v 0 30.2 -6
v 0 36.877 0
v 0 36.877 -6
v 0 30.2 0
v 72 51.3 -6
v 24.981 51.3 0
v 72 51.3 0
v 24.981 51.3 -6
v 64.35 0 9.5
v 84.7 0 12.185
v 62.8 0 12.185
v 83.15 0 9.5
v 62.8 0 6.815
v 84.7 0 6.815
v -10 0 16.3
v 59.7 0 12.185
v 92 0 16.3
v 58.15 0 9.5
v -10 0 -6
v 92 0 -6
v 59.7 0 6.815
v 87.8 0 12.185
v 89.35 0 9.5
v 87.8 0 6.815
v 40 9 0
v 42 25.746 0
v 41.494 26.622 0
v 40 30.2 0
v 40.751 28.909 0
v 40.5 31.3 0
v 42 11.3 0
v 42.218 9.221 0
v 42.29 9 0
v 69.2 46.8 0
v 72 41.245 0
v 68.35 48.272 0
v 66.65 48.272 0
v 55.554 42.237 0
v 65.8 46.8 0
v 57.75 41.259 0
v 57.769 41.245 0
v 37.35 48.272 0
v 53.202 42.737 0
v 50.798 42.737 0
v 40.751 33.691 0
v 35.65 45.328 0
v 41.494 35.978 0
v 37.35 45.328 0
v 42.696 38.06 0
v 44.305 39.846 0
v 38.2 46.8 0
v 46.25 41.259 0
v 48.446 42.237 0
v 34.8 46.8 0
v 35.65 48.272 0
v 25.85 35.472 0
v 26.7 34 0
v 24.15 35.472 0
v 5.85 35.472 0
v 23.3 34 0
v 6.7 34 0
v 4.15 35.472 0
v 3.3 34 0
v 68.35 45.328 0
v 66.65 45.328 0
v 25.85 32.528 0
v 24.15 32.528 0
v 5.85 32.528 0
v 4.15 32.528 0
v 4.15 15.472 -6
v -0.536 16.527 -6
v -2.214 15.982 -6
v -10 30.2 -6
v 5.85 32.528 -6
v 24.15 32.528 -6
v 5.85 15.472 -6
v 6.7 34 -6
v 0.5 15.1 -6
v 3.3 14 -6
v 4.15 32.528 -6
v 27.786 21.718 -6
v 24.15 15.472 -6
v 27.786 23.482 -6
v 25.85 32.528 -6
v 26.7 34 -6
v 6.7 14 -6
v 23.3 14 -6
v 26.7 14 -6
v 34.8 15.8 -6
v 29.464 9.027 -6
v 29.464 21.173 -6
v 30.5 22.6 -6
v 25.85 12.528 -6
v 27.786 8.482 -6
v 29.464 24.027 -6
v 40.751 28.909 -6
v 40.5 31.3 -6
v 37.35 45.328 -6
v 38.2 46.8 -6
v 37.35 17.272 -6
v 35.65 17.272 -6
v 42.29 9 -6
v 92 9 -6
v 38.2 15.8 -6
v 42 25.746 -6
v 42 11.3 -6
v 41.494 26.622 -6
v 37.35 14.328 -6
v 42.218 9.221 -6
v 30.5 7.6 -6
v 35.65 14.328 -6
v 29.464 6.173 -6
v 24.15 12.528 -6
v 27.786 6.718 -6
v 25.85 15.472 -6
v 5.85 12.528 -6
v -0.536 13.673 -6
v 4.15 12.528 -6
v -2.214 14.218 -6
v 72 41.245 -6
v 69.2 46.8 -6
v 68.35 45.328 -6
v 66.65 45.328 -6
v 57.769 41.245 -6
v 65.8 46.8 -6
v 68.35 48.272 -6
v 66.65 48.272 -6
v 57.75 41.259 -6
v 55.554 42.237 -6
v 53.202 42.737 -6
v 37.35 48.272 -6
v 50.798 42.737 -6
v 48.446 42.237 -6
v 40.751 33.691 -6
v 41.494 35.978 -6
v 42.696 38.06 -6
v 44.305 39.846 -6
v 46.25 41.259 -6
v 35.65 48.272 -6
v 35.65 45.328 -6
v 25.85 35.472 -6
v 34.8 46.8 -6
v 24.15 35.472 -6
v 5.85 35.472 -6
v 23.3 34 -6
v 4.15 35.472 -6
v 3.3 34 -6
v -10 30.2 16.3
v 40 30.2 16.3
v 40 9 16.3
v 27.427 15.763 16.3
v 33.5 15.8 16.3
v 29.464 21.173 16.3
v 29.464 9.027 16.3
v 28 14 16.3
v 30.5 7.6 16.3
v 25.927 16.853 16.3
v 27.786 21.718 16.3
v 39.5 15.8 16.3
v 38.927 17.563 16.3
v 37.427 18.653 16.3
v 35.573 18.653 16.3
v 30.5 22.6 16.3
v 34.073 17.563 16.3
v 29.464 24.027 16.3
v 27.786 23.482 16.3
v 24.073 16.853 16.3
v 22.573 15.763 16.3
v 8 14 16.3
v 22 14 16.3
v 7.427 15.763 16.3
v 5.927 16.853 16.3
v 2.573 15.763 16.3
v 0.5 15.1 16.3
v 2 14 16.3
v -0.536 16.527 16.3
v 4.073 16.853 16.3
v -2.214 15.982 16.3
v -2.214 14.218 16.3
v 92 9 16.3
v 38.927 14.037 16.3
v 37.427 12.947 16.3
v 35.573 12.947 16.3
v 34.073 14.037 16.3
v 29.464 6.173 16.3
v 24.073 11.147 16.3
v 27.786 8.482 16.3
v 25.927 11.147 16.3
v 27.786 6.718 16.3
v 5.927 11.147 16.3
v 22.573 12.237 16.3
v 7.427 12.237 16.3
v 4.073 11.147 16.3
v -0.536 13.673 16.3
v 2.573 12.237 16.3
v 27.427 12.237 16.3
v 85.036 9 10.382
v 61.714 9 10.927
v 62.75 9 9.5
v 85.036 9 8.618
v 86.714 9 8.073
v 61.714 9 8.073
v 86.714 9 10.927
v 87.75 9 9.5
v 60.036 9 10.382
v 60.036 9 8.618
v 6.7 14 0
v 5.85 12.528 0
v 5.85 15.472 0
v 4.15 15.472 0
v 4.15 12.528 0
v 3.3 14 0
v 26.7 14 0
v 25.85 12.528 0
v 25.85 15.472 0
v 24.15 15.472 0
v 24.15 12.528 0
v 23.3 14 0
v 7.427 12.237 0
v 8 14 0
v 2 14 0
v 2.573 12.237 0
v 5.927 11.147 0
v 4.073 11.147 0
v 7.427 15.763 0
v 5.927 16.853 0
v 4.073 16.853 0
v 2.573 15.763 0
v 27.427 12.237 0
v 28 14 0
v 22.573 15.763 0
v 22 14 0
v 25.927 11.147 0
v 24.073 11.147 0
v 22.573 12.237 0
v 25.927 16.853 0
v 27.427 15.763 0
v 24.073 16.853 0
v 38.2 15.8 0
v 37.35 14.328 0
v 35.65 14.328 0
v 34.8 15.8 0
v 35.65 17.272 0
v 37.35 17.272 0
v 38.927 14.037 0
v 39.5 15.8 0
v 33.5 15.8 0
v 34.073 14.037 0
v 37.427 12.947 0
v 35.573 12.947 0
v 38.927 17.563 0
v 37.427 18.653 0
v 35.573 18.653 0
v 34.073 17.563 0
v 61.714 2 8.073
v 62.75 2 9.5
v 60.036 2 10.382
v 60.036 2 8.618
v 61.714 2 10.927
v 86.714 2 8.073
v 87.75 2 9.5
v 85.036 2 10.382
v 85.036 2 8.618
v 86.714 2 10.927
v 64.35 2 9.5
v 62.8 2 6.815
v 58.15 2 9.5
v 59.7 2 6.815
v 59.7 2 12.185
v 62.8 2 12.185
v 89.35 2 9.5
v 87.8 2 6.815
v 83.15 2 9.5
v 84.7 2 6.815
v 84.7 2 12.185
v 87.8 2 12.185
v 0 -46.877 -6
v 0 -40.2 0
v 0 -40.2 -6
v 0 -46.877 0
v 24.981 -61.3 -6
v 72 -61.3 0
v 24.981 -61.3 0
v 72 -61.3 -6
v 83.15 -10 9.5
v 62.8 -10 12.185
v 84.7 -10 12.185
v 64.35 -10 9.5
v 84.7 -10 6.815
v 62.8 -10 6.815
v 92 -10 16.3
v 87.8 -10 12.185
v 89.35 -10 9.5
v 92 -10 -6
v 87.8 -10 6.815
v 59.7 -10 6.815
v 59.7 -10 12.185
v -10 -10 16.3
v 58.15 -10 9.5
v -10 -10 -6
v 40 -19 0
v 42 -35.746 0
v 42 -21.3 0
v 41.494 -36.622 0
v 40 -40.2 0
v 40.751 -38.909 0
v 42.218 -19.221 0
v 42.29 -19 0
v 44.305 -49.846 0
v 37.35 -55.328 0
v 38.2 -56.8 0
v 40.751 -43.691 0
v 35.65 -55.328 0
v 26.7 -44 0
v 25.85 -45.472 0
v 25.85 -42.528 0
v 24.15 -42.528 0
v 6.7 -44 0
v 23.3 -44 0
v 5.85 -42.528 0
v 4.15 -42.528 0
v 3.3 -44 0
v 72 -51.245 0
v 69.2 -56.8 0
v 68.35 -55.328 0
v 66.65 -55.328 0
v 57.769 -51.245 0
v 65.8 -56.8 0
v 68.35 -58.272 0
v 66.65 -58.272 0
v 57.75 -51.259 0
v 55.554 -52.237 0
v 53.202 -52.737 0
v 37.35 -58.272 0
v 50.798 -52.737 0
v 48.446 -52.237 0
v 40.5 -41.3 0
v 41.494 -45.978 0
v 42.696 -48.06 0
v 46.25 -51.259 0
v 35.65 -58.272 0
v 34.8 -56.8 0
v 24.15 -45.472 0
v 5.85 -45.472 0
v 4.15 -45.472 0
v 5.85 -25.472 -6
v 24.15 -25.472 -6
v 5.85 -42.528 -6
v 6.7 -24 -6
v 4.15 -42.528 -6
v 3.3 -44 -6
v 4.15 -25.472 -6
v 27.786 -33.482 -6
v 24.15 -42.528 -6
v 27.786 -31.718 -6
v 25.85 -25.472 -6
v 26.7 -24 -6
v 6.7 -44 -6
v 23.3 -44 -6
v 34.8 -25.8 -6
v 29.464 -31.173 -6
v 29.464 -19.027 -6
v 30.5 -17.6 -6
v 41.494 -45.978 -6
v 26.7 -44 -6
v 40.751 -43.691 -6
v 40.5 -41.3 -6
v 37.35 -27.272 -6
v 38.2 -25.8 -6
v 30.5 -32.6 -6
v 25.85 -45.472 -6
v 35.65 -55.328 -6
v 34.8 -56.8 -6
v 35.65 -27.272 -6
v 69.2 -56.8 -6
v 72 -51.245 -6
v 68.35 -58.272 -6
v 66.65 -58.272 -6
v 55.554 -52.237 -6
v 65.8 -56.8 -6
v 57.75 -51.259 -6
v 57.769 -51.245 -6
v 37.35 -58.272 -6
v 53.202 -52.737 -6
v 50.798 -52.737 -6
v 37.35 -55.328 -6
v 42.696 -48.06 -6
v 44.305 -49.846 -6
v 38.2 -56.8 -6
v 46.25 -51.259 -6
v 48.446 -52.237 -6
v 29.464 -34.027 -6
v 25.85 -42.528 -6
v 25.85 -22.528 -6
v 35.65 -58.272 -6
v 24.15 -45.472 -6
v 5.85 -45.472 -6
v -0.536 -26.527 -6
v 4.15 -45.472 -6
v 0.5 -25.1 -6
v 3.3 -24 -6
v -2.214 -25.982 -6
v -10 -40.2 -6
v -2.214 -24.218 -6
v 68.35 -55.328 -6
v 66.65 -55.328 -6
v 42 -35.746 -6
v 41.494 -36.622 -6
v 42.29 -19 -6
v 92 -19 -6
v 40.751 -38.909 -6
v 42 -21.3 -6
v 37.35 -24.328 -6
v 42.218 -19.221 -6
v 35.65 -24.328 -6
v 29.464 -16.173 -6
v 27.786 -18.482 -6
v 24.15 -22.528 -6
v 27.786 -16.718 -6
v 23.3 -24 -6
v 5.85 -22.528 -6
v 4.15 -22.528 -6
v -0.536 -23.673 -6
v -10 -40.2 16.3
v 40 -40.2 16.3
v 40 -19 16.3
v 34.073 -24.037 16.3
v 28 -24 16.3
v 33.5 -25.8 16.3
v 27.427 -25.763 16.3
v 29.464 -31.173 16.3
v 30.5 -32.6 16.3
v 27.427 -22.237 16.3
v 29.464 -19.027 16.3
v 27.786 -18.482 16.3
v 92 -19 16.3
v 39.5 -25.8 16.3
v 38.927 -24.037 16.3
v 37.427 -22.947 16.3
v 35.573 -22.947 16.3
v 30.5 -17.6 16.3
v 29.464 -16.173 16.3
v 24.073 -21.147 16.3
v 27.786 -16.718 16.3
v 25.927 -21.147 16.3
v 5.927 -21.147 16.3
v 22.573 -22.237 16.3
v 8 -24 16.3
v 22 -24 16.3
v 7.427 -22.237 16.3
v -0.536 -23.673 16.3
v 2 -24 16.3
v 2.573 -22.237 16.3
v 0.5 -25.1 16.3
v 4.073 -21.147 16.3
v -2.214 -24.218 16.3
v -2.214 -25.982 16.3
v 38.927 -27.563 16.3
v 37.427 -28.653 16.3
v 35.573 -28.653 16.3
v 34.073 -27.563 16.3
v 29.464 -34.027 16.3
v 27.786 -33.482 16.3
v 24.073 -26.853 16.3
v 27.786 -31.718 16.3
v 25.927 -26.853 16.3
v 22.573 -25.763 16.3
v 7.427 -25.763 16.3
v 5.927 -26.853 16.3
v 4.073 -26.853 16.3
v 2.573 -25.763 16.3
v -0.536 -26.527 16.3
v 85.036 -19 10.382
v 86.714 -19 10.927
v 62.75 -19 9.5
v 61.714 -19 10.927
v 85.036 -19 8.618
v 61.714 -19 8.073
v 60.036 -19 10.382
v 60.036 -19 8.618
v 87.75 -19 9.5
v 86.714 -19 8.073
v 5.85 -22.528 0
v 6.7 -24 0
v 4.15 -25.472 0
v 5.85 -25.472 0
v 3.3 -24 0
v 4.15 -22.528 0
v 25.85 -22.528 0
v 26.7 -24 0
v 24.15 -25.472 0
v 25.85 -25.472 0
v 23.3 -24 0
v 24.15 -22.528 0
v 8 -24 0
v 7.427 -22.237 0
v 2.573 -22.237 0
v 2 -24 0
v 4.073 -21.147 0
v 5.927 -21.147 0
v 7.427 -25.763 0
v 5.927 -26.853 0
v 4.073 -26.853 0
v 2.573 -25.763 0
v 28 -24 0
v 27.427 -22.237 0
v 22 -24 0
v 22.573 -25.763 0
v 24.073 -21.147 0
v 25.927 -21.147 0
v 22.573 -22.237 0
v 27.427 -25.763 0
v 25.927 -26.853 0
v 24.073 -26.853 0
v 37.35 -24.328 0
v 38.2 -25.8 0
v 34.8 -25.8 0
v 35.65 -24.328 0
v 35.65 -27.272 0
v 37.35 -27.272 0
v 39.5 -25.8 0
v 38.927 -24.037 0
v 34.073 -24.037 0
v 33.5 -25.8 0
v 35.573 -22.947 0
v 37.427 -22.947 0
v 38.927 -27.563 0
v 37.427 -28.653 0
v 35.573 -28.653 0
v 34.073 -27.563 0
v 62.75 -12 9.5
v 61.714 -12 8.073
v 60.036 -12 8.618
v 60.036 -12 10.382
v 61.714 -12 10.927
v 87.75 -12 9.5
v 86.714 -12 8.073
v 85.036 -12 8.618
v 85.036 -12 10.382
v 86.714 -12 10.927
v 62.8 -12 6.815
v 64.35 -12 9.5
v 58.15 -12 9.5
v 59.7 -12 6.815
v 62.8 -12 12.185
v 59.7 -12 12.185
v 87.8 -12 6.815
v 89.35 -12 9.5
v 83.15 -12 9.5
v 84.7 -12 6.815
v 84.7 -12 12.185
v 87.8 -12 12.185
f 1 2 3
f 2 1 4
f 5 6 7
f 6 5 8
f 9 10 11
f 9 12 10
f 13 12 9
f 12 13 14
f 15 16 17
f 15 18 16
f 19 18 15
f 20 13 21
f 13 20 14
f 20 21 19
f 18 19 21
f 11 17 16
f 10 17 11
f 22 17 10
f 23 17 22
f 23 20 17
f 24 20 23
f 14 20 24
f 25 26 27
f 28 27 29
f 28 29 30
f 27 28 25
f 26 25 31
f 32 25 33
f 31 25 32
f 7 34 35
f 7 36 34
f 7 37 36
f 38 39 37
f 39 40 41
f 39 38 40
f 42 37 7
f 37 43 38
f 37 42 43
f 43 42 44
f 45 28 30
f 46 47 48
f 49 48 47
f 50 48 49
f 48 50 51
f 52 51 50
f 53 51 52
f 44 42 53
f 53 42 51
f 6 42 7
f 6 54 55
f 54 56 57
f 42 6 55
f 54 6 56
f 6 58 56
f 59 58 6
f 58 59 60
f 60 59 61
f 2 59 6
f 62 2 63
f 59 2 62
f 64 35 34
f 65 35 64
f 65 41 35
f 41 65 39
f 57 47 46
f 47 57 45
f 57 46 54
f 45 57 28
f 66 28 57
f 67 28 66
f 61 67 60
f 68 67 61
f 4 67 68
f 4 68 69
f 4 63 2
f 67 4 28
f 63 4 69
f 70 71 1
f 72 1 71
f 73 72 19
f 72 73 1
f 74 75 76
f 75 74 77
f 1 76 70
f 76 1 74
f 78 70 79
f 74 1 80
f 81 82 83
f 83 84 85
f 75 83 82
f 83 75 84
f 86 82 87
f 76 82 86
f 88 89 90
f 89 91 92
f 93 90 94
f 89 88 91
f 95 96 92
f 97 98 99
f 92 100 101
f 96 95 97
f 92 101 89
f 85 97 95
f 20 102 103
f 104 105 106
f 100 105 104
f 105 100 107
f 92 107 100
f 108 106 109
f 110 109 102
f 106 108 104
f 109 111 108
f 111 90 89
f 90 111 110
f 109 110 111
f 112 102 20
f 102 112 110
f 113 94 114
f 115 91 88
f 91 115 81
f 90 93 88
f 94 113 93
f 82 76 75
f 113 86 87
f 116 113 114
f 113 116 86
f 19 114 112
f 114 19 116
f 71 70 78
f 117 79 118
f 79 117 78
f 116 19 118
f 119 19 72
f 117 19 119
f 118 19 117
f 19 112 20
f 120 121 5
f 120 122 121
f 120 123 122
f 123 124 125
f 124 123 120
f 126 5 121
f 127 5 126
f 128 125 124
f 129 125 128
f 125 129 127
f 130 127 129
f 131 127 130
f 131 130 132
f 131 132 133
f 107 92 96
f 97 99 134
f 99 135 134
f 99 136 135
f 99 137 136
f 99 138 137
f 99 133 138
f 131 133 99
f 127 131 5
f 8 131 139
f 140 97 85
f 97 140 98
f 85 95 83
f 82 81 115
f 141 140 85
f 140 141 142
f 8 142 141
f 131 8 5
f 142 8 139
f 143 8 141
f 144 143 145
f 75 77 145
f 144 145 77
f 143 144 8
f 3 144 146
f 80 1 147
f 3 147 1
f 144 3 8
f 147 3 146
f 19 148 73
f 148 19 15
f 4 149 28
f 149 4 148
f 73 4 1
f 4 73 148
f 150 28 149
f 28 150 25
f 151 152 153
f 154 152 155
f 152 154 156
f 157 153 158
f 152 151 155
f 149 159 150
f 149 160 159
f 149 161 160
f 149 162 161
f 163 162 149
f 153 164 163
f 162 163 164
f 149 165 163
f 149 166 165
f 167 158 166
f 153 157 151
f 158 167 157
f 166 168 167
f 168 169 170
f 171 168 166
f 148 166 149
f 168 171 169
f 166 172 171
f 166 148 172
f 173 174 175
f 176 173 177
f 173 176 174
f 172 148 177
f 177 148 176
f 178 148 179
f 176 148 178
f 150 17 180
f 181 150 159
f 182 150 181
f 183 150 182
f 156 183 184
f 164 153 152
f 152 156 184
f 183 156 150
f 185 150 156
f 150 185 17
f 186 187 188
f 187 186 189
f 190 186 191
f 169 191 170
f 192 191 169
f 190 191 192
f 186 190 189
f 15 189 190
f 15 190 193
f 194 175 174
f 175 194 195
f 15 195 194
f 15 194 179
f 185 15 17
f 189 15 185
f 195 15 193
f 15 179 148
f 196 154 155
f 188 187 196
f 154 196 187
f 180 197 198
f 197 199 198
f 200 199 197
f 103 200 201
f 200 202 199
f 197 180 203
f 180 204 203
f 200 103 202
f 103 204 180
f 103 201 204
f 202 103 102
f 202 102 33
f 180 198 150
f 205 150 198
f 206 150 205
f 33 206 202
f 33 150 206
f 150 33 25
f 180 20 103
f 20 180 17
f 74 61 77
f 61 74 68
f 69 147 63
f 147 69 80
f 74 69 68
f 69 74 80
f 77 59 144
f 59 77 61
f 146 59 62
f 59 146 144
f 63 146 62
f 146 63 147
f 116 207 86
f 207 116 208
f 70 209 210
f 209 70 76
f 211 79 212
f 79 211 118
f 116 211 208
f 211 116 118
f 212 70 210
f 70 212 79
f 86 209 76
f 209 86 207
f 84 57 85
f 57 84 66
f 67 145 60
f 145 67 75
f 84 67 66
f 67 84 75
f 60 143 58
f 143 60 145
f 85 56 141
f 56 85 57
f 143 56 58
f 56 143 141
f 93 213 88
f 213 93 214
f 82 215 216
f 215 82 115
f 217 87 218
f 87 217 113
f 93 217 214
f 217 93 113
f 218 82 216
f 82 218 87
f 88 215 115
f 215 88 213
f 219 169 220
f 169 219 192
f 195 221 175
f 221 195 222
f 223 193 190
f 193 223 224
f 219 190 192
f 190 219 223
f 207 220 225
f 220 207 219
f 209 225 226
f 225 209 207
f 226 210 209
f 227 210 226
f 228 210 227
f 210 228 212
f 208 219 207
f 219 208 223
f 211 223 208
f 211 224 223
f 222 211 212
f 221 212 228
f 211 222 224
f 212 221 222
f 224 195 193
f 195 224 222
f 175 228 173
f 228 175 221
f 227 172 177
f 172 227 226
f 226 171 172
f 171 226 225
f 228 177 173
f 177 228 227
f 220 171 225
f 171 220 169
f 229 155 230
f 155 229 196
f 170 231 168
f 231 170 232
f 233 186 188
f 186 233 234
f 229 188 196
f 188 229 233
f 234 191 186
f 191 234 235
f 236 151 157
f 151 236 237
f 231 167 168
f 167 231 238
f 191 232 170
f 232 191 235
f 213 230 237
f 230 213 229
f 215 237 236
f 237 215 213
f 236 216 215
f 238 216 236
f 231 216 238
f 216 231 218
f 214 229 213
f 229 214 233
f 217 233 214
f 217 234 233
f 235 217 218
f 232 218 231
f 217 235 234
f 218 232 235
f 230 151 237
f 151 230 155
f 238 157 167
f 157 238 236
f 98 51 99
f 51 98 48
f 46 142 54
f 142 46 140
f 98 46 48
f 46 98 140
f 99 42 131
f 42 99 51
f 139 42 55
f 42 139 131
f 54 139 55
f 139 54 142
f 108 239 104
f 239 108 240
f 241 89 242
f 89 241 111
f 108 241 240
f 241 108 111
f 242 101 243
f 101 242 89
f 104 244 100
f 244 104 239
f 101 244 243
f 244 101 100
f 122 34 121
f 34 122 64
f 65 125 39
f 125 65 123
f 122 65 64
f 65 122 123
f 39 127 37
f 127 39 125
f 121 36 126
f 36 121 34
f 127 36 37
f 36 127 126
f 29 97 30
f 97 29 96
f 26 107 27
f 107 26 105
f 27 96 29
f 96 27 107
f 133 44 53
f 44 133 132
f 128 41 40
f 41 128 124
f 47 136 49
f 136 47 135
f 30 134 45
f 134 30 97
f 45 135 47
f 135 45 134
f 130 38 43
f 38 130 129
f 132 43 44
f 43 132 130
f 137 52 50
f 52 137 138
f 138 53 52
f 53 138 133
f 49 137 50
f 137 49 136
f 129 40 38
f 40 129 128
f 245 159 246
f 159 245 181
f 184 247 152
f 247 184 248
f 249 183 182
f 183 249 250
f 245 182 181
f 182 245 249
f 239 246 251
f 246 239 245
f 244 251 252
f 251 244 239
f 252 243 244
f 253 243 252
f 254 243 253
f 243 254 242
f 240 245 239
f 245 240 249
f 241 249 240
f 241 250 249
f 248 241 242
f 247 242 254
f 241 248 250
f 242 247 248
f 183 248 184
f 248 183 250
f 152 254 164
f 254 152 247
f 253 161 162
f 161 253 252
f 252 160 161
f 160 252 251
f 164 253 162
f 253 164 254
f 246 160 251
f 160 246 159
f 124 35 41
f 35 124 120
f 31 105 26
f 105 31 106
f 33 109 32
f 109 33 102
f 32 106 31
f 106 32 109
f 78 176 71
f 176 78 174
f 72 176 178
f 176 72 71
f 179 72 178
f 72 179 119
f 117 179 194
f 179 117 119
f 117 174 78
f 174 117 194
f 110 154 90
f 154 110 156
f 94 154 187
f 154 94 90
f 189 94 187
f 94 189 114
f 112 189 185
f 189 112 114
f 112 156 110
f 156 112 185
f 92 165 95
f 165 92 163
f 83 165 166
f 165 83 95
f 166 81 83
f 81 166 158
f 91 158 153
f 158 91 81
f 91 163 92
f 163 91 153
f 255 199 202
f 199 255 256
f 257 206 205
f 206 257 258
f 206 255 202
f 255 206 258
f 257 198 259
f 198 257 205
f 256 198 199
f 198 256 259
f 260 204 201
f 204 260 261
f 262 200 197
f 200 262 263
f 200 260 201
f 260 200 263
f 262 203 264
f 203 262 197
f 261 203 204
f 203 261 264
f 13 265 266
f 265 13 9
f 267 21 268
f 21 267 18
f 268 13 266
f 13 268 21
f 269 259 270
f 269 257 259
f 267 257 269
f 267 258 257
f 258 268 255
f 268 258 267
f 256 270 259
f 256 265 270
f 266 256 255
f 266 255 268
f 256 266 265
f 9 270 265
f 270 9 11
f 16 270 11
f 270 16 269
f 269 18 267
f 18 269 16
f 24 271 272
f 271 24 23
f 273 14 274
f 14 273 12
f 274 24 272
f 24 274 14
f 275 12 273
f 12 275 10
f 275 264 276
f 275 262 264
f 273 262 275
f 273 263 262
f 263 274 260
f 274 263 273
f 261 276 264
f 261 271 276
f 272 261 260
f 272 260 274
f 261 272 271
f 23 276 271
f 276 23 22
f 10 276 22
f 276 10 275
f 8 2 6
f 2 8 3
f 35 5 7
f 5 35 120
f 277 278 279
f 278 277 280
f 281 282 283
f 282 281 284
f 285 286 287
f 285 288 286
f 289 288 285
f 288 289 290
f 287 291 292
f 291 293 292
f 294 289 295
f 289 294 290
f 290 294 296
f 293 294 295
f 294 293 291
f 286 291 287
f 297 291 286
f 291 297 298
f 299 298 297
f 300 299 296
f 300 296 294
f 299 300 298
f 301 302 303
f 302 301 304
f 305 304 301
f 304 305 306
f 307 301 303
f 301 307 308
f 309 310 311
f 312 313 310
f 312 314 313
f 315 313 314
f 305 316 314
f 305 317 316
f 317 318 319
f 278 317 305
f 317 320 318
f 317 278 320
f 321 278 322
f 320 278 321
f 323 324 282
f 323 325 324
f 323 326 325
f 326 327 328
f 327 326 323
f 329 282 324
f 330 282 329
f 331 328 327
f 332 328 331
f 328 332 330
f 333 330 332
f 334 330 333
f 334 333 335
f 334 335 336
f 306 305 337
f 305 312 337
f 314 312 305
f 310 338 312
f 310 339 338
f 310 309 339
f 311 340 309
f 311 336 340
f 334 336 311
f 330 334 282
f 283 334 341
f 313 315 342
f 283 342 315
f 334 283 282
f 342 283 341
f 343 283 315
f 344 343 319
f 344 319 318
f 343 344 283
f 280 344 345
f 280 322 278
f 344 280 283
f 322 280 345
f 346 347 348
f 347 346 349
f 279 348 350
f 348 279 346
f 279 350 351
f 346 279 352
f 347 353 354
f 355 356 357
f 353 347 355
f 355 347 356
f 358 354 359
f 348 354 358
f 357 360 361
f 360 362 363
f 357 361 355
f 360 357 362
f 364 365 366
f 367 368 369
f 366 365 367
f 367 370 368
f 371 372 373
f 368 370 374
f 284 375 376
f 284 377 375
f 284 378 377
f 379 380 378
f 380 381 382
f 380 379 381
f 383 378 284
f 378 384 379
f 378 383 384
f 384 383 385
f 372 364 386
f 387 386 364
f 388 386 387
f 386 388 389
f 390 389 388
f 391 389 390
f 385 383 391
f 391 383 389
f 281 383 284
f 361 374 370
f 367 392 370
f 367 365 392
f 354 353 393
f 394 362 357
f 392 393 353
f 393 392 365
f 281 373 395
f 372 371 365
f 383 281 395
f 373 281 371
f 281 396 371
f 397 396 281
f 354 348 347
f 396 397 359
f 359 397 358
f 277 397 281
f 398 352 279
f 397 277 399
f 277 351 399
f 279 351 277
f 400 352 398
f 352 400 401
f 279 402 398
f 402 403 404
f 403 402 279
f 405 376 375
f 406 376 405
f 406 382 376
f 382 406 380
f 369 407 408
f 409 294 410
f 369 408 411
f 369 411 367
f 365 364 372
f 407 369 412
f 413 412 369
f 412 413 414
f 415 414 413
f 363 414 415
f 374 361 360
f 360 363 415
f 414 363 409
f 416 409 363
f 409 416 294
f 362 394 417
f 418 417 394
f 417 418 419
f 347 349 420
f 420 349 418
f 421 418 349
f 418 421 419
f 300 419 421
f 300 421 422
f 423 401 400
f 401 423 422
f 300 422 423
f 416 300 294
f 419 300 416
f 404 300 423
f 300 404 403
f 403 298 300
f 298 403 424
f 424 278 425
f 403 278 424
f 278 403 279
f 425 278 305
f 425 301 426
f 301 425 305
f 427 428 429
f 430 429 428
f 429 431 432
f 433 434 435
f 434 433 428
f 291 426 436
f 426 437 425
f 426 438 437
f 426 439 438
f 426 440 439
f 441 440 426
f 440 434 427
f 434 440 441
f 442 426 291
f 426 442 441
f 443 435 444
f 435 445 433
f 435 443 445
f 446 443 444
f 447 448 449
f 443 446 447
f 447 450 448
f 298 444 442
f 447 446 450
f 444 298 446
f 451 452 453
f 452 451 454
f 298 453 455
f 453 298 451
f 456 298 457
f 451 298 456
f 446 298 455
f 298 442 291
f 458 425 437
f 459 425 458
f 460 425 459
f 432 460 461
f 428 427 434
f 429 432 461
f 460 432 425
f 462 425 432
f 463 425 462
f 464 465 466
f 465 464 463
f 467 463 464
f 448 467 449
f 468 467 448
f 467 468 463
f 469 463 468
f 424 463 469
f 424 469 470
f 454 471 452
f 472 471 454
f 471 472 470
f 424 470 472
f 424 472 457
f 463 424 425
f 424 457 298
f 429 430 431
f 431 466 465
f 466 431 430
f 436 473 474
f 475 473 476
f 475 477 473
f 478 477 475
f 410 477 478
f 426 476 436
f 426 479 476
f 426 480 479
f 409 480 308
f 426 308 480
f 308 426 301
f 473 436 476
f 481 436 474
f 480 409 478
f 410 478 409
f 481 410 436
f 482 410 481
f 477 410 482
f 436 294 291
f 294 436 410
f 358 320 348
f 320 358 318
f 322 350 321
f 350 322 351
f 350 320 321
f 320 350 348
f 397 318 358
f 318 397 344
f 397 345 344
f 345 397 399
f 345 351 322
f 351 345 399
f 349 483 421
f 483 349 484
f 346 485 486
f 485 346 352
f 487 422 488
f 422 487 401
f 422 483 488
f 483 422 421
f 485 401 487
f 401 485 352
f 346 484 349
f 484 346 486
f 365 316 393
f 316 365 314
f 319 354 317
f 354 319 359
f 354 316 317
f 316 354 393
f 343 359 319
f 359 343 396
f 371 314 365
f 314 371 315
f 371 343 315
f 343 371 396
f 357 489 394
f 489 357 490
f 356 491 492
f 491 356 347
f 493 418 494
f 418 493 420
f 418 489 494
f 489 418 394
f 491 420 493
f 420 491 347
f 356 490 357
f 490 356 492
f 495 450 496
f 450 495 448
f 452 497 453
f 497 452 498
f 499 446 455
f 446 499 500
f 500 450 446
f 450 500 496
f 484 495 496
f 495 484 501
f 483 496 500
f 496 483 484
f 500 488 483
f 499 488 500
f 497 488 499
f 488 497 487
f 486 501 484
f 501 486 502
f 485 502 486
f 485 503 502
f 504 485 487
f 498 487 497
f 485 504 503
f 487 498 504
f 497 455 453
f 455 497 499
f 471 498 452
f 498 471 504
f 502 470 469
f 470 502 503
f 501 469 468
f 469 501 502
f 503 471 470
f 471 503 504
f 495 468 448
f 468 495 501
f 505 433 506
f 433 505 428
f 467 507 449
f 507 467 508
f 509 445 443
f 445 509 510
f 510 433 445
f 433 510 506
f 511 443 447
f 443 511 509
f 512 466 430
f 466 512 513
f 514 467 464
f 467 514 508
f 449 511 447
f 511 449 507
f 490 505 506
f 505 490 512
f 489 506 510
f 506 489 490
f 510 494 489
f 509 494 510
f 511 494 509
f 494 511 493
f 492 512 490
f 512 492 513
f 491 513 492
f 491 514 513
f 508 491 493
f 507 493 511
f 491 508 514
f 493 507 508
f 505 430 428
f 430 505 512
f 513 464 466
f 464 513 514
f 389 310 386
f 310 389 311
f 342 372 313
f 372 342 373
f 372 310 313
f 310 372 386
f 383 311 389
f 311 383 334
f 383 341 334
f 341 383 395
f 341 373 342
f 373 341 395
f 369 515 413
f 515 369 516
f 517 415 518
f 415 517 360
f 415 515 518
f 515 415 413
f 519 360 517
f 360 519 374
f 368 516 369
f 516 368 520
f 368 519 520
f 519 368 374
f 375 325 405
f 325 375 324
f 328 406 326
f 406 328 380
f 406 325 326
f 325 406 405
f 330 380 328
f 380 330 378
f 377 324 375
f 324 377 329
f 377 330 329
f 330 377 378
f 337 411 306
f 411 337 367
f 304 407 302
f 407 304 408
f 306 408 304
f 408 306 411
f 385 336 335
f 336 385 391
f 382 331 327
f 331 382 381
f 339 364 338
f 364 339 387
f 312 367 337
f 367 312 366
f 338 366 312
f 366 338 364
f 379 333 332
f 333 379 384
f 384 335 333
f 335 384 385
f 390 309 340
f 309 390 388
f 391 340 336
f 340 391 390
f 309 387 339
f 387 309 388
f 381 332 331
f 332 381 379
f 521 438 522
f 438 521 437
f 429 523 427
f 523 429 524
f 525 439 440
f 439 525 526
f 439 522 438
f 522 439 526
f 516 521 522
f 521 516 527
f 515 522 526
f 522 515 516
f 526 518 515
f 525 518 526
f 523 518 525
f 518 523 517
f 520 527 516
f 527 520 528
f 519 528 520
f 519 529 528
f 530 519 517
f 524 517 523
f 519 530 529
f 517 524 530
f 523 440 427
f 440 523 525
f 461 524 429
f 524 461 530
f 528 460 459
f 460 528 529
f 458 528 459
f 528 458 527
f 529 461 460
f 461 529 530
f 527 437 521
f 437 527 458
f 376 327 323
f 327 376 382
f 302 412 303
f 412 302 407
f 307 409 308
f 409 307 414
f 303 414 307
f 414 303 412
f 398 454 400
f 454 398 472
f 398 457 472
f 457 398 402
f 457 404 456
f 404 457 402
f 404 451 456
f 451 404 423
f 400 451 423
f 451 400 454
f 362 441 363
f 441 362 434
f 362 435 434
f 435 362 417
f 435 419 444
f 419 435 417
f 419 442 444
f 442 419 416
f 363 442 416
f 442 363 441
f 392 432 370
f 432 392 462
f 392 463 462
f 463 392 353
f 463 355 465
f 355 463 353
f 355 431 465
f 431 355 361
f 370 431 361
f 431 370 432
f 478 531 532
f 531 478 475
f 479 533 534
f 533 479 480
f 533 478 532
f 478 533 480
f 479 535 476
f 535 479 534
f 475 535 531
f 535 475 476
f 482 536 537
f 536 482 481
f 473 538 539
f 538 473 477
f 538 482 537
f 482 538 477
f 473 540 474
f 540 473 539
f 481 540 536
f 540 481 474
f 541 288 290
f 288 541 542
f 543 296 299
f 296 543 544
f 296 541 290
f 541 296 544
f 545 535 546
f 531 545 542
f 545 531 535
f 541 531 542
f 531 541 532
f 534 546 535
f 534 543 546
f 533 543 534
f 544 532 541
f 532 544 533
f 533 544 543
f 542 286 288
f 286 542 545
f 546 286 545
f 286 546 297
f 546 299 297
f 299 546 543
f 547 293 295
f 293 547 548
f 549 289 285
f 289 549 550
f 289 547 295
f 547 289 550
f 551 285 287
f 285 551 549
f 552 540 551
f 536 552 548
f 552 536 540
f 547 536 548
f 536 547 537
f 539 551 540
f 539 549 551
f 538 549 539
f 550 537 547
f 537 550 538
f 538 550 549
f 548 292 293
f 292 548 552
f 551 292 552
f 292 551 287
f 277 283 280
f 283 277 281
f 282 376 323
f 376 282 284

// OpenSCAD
/**
 * XEnd.scad
 * 
 * Created by Diego Viejo
 * 10/may/2016
 * 
 */


    //TODO comprobar distancia entre ambos XEnds para ajustar el tamaño de la pieza
    // vertical y la posición de estos agujeros
    // El centro de cada pieza vertical de aluminio está a 15mm del borde externo
    // Distancia entre piezas verticales de aluminio: 467.5 mm
    // Distancia del primer agujero del Beam al borde: 12.5 mm
    // Longitud del Beam = 400mm


Nema17Width = 42.3; //3.5;
Nema17Holes = 31;

PlatformHoleSep = 20;
BeamHoleSep = 25;

Width = 90;
Length = 25;
Wall = 6;
Floor = 9;
Height = Nema17Width + Floor;

//TODO Comprobar estas medidas
threadDiam = 13;
threadHoles = 30; //distance between holes in the nut
threadHolesV = 15; //distance between holes in the nut (Vertical)
threadWidth = 48;
threadLength = 17.15;
ThreadHeight = 30.2;
ThreadPos = 29.3 - 13;

rotate([-90, 0, 0])
XEndV();

translate([0, -10, 0])
mirror([0, 1, 0])
rotate([-90, 0, 0])
XEndV();

module XEndVBody()
union()
{
    cube([Width, Wall, Height]);
    translate([-10, -ThreadPos, 0]) 
        cube([threadWidth+2, ThreadPos+Wall, ThreadHeight]);
    translate([0, -ThreadPos, 0]) 
        cube([Width+2, ThreadPos+Wall, Floor]);
}

module XEndVHoles()
{
    //ZAxis housing
    translate([15, -25, 15+Floor]) rotate([-90, 0, 0])
    {
        for(i=[-1, 1]) 
            for(j=[-1, 1])
                translate([i*PlatformHoleSep/2, j*PlatformHoleSep/2,0]) 
                    cylinder(d=3.4, h=Height+2);
    }
    translate([15, -Nema17Width/2-1, 15+Floor]) rotate([-90, 0, 0])
    {
        for(i=[-1, 1]) 
            for(j=[-1, 1])
                translate([i*PlatformHoleSep/2, j*PlatformHoleSep/2,0]) 
                    cylinder(d=6, h=Nema17Width/2+1);
    }
    
    
    //nema 17 housing
    translate([Width/2+7, -30, Height-20]) rotate([-90, 0, 0])
    {
        for(i=[-1, 1]) 
            for(j=[-1, 1])
                translate([i*(Nema17Holes/2), j*(Nema17Holes/2),0]) cylinder(d=3.4, h=Height+2);
        cylinder(d=23, h=Height+2);
        
        translate([Nema17Holes/2, Nema17Holes/2,30-Length-1]) cylinder(d=6, h=Length+1);
        translate([-Nema17Holes/2, Nema17Holes/2,30-Length-1]) cylinder(d=6, h=Length+1);
    }
    difference()
    {
        translate([Width/2+7, -30, Height-20]) rotate([-90, 0, 0])
            hull()
            {
                cylinder(d=20, h=Height+2);
                translate([0, 20, 0]) cylinder(d=20, h=Height+2);
                translate([50, 0, 0]) cylinder(d=20, h=Height+2);
                translate([60, 20, 0]) cylinder(d=20, h=Height+2);
            }
        translate([-1, -Length-1, -1]) cube([Width+1+17, Length+Wall+1, Floor+1]);
    }
    
    //Thread nut holes
    translate([(threadWidth-threadHoles)/2-10, Wall+1, ThreadHeight/2]) rotate([90, 0, 0])
        cylinder(d=3.0, h=Height);
    translate([(threadWidth+threadHoles)/2-10, Wall+1, (ThreadHeight-threadHolesV)/2]) rotate([90, 0, 0])
        cylinder(d=3.0, h=Height);
    translate([(threadWidth+threadHoles)/2-10, Wall+1, (ThreadHeight+threadHolesV)/2]) rotate([90, 0, 0])
        cylinder(d=3.0, h=Height);
    

    //XAxis housing
    translate([15+(467.5-400)/2+12.5, -(Length-Wall)/2, -1]) cylinder(d=3.0, h=Floor+2); 
    translate([15+(467.5-400)/2+12.5+BeamHoleSep, -(Length-Wall)/2, -1]) cylinder(d=3.0, h=Floor+2);
    translate([15+(467.5-400)/2+12.5, -(Length-Wall)/2, -1]) cylinder(d=6.2, h=3, $fn=6); 
    translate([15+(467.5-400)/2+12.5+BeamHoleSep, -(Length-Wall)/2, -1]) cylinder(d=6.2, h=3, $fn=6);

    //fancy cuts
    translate([-1, -1, Height-15]) rotate([0, -30, 0]) cube([35, Wall+2, 15]);
    translate([Width-18, -1, Height/2]) cube([25, Wall+2, 30]);
}

module XEndV()
difference()
{
    XEndVBody();
    XEndVHoles();
}
